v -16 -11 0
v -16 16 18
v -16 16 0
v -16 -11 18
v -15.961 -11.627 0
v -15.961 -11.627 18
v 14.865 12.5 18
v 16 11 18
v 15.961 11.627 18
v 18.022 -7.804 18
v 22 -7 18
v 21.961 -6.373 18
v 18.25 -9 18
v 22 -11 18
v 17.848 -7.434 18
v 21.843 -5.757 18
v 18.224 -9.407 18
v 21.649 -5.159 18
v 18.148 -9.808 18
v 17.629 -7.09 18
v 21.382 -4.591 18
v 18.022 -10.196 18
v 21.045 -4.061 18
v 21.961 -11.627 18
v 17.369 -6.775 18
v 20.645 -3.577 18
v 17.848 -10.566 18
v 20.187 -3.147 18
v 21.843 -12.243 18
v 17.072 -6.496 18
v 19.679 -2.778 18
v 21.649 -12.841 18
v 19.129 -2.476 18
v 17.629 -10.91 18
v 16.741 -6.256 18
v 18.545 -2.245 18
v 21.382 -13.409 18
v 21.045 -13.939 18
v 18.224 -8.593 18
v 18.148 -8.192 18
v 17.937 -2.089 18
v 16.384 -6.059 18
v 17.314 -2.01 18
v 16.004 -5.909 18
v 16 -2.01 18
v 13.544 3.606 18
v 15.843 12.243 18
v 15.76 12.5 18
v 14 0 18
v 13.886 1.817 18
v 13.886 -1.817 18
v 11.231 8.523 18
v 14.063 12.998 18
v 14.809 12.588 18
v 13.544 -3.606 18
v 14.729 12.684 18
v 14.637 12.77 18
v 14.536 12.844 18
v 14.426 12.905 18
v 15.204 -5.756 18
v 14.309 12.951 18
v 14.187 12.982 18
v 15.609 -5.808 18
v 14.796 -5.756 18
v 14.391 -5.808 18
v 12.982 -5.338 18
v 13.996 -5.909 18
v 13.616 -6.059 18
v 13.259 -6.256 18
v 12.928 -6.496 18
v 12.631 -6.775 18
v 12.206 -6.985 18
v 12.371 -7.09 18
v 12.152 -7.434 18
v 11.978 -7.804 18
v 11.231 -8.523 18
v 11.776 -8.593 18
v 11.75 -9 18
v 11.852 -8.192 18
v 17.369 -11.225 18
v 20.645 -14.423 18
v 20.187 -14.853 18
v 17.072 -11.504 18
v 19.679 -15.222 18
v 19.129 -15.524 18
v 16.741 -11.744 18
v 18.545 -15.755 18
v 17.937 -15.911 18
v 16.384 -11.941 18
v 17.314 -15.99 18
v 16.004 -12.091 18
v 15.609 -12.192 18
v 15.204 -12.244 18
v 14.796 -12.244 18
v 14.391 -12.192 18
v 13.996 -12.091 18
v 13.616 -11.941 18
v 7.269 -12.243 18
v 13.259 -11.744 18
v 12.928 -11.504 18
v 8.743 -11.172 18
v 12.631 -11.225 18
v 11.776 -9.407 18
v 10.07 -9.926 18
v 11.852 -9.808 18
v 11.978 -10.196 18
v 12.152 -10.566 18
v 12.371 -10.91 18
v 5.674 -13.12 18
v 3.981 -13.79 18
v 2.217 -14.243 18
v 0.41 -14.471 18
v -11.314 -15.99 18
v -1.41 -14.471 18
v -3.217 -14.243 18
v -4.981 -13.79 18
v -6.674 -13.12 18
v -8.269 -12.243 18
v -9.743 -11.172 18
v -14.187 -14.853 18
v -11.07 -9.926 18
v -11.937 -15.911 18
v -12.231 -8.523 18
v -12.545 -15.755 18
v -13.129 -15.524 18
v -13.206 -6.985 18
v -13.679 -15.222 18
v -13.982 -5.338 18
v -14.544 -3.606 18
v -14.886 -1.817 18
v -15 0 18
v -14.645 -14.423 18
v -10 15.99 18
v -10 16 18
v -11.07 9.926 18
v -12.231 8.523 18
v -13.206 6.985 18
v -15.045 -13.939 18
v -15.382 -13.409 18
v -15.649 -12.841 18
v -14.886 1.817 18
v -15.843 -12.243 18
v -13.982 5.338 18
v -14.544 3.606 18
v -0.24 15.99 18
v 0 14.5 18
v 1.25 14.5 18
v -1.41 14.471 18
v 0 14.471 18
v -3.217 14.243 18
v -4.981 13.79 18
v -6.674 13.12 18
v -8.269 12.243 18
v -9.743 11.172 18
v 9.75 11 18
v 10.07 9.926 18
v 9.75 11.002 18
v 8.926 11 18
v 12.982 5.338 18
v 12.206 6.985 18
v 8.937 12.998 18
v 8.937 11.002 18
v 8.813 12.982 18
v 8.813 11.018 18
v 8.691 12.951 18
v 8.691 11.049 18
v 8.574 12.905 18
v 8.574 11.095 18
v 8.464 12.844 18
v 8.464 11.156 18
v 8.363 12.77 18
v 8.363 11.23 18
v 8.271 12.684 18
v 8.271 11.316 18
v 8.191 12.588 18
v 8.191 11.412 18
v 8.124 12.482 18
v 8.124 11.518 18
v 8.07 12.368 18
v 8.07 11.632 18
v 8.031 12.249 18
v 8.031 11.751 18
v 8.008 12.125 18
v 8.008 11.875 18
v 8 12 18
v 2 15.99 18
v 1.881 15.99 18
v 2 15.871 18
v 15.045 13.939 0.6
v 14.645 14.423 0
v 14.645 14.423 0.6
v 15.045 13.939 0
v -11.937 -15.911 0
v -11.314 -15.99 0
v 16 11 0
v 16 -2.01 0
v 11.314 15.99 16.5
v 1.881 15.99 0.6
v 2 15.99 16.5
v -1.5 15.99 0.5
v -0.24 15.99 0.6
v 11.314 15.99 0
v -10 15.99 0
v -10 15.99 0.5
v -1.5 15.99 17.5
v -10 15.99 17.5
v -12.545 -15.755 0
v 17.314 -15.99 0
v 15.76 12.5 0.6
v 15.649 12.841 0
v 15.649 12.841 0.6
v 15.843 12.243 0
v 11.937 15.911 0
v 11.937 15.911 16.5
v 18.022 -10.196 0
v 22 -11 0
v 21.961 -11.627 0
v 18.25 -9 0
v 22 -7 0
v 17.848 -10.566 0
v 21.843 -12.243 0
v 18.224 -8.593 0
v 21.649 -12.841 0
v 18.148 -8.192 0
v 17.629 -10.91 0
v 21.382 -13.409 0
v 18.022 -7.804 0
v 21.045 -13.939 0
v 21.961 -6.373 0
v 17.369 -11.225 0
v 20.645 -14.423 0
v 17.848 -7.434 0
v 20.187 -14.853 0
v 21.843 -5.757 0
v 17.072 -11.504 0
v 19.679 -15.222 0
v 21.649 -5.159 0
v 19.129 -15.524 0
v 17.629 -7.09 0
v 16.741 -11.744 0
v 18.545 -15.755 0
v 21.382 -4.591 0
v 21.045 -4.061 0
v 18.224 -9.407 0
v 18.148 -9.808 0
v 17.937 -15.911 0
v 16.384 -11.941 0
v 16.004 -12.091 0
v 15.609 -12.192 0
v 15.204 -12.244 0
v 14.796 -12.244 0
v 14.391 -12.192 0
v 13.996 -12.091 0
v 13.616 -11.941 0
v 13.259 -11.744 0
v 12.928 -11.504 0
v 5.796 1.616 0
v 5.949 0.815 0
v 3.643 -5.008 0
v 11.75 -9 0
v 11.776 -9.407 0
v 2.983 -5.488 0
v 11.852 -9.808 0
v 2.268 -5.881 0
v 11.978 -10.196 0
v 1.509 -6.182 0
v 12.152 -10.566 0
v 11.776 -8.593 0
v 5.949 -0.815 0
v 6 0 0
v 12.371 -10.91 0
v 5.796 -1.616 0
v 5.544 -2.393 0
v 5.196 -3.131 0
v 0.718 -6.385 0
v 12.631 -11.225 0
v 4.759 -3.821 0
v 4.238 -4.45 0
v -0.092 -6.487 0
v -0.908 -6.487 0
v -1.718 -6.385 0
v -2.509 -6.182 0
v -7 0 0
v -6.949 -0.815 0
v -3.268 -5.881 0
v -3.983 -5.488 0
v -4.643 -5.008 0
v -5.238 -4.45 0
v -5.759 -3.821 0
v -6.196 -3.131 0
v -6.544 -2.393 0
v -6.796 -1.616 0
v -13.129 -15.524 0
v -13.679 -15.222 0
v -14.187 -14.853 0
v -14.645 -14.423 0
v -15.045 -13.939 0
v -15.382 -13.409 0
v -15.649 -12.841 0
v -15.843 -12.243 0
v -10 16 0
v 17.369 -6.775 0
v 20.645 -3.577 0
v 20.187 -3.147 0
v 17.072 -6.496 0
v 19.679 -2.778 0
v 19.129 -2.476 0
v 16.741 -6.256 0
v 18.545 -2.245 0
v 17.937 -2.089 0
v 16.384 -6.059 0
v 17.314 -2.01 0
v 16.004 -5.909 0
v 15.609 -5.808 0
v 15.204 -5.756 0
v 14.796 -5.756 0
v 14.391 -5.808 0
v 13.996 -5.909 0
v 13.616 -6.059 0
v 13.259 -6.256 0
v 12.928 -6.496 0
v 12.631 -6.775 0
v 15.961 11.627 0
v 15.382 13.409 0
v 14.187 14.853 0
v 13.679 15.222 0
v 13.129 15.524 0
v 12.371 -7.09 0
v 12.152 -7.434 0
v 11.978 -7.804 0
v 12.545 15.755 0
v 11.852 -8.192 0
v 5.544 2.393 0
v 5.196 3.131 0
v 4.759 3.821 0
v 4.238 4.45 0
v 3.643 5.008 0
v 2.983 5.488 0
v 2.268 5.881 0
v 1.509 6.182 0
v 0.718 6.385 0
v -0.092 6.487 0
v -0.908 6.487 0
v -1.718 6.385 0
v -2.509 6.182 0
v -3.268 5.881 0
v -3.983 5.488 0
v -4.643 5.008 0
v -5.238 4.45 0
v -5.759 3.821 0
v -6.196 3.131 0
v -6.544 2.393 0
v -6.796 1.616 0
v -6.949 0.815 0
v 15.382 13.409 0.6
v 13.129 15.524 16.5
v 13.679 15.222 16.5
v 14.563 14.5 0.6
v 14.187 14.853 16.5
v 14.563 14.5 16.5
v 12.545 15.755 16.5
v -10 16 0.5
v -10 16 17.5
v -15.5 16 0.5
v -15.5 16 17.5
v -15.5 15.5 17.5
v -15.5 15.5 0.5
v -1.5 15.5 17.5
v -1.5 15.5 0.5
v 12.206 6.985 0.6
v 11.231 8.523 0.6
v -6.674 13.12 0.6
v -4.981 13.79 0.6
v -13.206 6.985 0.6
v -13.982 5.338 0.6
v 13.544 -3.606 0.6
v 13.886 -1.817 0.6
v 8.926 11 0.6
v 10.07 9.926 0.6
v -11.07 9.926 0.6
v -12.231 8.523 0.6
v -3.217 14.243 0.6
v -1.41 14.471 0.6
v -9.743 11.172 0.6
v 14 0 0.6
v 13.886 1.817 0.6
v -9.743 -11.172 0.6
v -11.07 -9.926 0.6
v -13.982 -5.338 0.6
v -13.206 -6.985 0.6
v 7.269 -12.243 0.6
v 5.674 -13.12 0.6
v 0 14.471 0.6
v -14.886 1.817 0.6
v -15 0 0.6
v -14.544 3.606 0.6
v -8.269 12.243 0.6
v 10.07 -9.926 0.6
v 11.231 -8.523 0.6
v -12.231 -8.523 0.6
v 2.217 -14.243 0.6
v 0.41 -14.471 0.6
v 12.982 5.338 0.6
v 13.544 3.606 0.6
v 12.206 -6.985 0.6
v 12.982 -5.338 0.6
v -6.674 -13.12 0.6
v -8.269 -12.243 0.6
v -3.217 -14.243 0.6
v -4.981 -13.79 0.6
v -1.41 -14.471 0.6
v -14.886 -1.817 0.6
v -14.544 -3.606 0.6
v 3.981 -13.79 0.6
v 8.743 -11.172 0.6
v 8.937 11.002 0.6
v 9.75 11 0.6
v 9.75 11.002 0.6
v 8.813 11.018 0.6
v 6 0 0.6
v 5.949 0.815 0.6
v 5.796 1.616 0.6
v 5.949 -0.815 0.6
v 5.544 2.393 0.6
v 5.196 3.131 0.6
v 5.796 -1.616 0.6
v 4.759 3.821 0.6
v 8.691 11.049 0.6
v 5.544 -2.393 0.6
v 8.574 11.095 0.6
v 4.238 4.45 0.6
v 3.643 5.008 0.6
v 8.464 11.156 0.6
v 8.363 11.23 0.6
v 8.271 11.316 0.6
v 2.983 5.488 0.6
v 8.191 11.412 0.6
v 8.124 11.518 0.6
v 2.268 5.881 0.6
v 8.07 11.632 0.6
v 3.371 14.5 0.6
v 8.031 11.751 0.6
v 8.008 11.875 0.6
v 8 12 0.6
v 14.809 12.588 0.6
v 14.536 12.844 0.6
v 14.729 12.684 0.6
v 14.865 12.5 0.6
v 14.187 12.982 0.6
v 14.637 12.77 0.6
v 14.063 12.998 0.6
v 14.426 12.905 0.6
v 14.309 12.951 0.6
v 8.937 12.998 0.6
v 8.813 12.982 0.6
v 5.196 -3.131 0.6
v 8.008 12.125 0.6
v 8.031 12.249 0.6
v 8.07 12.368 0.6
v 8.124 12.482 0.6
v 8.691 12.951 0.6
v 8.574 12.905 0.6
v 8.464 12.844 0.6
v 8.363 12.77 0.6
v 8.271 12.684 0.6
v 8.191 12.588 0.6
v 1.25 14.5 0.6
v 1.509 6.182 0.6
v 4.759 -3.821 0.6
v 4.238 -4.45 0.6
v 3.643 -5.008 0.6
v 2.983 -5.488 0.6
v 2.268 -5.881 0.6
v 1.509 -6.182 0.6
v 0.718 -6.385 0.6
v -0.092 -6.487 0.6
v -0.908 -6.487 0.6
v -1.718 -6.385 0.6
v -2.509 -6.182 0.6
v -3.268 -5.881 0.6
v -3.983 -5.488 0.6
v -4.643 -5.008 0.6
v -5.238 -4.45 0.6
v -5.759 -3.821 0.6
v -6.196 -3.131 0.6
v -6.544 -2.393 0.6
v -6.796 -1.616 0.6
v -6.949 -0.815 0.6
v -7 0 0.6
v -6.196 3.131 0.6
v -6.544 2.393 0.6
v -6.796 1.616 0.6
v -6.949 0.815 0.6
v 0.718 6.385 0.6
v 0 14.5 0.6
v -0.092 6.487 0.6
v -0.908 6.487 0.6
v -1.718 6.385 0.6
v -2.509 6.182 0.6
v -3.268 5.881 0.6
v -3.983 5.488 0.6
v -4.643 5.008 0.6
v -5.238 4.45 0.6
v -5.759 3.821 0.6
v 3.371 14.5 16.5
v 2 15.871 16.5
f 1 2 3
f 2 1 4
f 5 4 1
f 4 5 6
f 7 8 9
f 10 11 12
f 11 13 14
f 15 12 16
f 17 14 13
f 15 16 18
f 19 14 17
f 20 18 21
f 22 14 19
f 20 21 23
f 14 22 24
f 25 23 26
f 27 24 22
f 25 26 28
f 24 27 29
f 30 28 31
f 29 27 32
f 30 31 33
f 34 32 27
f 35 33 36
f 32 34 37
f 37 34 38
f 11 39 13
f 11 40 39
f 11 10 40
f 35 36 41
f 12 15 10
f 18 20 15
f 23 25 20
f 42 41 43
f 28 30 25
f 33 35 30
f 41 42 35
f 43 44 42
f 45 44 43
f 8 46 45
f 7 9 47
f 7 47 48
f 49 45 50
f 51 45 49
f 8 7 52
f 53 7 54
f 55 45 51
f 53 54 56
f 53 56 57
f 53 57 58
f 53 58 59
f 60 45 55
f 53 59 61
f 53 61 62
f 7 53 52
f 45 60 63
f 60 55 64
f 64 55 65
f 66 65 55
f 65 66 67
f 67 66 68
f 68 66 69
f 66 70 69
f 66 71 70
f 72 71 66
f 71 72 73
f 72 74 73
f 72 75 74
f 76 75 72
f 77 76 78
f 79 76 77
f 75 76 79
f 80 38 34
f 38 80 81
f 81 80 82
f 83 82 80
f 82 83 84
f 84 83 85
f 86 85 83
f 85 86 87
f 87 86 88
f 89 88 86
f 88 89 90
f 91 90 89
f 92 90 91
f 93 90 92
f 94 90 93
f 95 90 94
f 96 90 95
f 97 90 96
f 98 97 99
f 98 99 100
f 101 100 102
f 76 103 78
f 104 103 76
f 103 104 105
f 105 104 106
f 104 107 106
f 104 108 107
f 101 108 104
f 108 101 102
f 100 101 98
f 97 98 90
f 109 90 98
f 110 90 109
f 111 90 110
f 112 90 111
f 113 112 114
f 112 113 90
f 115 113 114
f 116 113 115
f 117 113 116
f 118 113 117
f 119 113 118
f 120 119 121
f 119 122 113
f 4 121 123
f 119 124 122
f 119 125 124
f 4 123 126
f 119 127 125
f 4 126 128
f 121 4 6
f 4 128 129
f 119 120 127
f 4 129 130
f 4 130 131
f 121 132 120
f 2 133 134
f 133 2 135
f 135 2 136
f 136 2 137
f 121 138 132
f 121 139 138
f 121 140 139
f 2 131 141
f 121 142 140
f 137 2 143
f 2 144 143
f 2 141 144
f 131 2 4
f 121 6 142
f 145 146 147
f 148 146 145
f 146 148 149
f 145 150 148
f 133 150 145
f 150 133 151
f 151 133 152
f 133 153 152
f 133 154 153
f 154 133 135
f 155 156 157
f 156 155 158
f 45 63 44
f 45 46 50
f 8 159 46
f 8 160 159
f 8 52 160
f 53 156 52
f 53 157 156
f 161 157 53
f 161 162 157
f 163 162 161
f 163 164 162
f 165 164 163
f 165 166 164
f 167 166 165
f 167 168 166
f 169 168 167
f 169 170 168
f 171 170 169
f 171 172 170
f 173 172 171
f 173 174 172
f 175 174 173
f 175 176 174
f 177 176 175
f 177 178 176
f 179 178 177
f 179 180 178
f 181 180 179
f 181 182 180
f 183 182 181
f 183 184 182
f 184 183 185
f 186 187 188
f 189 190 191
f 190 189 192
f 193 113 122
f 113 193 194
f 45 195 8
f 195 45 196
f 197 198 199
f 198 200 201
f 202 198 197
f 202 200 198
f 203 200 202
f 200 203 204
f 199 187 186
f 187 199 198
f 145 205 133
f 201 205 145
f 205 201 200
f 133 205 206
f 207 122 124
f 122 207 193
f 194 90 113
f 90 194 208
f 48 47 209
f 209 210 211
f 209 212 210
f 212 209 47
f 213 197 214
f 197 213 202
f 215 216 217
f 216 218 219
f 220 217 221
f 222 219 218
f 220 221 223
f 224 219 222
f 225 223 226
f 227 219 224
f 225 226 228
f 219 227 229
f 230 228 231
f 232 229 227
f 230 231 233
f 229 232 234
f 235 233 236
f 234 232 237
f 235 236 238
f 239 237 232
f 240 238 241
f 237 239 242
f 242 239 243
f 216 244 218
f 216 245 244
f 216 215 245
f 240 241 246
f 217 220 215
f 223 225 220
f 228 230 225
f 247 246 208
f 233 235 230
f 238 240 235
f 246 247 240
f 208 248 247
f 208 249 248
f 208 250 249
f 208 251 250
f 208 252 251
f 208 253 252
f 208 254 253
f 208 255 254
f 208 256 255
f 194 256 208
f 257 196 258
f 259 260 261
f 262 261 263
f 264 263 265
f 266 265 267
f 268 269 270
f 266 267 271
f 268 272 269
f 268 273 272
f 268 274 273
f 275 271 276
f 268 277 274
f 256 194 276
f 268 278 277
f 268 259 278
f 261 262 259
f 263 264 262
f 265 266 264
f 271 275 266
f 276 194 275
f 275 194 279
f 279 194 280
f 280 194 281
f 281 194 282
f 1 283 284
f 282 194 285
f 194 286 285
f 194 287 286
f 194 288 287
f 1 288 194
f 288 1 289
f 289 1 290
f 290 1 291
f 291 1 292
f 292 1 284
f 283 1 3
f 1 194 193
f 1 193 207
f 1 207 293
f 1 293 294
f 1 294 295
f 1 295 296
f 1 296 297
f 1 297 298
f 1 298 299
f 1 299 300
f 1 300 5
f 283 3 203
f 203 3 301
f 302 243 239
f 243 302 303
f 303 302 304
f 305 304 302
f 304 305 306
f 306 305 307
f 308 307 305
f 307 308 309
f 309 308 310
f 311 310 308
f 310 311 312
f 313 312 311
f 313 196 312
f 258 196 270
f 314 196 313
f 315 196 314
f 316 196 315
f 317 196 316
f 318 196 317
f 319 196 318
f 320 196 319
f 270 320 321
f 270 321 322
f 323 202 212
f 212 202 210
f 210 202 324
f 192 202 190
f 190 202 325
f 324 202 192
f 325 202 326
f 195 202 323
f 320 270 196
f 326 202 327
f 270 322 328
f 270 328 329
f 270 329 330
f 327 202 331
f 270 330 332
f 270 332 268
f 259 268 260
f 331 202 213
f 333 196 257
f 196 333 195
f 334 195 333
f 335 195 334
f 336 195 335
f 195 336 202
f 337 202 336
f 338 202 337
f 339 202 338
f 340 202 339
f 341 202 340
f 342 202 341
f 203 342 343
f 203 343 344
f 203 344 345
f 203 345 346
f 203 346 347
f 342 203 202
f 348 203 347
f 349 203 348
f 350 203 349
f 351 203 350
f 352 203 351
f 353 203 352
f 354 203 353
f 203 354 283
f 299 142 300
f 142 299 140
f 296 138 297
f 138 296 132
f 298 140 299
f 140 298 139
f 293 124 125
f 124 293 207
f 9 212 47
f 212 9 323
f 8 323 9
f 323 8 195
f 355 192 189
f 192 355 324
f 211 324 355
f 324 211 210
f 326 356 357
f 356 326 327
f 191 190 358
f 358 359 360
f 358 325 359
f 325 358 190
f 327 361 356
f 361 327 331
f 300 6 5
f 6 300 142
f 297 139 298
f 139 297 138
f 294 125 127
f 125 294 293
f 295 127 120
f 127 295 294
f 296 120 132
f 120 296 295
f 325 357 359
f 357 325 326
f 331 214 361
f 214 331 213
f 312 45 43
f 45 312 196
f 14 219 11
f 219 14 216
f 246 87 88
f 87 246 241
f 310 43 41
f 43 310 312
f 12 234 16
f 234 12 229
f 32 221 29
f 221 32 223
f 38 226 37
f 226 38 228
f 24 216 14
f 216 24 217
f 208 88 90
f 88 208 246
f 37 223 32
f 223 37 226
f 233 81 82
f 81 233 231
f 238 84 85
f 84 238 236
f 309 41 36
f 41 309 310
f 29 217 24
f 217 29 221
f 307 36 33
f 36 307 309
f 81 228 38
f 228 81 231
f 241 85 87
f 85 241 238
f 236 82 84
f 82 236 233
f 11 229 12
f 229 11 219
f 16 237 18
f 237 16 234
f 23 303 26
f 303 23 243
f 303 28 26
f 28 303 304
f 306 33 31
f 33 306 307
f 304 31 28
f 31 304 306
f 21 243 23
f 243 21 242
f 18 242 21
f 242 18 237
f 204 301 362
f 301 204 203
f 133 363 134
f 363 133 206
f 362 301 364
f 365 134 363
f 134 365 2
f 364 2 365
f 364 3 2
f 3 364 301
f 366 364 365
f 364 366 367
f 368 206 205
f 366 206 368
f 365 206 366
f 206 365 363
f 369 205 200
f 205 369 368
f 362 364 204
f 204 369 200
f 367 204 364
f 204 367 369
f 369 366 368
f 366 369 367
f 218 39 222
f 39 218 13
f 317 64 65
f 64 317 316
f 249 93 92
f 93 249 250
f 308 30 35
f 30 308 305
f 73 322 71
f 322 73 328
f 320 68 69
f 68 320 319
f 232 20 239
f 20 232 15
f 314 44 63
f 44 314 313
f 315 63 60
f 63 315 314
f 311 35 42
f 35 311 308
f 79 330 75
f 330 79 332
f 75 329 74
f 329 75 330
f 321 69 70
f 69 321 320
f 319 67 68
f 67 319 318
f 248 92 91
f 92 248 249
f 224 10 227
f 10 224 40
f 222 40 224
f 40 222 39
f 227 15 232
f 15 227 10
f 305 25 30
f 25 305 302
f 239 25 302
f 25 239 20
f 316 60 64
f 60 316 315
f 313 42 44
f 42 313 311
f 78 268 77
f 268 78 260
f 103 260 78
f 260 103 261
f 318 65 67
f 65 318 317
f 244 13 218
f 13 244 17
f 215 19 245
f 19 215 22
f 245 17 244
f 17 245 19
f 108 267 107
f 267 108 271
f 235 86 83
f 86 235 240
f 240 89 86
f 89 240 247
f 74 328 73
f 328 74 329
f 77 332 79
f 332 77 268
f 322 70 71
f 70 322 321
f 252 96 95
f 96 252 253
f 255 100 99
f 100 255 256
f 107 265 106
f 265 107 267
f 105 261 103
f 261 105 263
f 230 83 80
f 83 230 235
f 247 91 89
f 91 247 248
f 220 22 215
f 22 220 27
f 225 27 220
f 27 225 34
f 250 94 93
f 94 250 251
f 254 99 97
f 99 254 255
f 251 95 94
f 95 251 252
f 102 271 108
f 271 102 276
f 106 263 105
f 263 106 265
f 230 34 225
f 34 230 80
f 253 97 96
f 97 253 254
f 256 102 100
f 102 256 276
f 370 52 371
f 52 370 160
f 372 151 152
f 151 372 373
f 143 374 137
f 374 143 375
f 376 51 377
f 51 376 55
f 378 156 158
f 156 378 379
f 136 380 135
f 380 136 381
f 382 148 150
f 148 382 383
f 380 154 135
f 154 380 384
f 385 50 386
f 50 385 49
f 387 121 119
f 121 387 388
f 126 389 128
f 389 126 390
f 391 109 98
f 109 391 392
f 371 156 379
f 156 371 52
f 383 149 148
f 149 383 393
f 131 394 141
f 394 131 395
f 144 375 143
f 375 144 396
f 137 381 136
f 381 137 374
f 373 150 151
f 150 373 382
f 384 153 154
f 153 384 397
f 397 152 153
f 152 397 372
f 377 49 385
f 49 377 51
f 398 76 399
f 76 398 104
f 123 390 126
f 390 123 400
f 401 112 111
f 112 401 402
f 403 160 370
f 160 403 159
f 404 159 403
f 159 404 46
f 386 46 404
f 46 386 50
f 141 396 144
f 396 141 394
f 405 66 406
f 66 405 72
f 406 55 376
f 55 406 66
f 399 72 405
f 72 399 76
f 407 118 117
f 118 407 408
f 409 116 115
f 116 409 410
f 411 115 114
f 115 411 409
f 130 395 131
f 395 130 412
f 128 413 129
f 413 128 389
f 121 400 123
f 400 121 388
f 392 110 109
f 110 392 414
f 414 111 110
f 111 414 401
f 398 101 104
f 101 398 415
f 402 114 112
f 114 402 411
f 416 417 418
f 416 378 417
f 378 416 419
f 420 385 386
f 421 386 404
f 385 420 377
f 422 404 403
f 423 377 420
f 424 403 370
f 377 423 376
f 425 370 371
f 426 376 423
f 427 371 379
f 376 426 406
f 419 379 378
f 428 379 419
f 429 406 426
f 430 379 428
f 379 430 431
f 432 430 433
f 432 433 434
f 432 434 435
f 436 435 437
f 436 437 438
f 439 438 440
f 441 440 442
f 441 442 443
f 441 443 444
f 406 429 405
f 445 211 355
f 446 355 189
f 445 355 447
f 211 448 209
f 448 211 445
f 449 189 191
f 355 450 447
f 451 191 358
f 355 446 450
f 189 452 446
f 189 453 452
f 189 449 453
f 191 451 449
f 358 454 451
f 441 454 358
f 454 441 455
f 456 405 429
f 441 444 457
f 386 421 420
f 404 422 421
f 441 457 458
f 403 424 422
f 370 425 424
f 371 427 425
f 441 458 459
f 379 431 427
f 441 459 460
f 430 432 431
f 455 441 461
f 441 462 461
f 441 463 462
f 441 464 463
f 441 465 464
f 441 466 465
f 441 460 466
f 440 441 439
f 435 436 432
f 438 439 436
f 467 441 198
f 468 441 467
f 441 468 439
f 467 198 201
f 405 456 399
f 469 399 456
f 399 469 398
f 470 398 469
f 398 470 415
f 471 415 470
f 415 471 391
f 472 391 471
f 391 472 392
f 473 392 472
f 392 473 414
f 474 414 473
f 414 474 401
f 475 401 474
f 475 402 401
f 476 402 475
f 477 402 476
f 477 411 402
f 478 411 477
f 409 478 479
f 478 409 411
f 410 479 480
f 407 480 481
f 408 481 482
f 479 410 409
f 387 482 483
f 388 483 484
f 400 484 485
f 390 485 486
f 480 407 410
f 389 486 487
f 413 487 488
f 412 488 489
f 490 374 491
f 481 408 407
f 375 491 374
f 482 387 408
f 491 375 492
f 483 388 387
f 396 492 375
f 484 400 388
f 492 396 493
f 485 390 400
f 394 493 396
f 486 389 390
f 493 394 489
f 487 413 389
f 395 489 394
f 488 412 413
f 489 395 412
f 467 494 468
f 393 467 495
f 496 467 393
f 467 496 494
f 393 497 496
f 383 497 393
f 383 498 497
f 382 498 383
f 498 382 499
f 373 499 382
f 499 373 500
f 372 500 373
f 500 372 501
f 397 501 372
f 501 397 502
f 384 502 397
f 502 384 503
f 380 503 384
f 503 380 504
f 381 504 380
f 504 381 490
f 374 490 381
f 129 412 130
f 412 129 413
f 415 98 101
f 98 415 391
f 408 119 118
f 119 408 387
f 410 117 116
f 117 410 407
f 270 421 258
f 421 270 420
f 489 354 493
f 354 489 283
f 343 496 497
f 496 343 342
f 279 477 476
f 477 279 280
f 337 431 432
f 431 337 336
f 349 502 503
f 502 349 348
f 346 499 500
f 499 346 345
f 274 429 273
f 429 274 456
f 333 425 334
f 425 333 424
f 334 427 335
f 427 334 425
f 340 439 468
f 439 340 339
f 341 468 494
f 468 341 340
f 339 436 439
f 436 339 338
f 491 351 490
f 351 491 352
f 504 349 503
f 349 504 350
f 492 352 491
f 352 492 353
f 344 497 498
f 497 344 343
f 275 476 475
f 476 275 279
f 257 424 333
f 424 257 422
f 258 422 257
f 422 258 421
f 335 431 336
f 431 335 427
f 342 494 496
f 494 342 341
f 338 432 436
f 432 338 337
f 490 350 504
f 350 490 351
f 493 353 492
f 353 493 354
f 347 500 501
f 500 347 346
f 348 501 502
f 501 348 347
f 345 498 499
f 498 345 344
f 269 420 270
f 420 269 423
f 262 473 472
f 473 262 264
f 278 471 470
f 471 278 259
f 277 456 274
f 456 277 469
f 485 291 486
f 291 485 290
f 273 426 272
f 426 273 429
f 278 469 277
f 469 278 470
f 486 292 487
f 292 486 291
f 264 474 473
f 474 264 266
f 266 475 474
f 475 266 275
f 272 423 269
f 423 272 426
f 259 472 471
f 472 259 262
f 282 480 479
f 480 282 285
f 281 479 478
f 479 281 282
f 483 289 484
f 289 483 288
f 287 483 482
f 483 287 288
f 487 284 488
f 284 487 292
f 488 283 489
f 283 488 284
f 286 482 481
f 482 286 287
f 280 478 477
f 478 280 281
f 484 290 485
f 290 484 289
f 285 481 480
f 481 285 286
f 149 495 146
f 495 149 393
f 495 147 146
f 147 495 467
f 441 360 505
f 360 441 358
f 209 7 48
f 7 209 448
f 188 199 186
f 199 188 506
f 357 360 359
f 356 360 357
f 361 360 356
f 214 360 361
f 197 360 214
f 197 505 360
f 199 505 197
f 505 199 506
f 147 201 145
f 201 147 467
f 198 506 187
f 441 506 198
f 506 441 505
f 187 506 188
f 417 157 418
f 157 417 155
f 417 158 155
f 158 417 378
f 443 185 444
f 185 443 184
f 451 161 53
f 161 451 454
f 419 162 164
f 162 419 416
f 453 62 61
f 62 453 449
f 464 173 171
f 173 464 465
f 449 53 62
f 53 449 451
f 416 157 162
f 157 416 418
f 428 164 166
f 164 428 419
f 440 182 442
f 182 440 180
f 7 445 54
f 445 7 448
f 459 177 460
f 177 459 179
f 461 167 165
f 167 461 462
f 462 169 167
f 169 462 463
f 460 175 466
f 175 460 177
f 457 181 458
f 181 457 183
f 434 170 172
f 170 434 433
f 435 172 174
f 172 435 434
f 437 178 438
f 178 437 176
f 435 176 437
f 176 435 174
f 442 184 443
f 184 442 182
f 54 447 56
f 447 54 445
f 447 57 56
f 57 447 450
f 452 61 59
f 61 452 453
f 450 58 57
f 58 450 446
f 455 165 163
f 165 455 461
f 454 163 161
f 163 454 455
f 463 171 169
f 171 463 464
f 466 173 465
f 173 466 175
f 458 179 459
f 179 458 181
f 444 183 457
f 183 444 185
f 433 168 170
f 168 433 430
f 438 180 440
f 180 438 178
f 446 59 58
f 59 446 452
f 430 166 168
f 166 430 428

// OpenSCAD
$fn = 50;


union() {
	difference() {
		union() {
			translate(v = [0, 0, 0]) {
				rotate(a = [0, 0, 0]) {
					hull() {
						translate(v = [-11.0000000000, 11.0000000000, 0]) {
							rotate(a = [0, 0, 0]) {
								translate(v = [0, 0, 0]) {
									rotate(a = [0, 0, 0]) {
										cylinder(h = 18, r = 5);
									}
								}
							}
						}
						translate(v = [11.0000000000, 11.0000000000, 0]) {
							rotate(a = [0, 0, 0]) {
								translate(v = [0, 0, 0]) {
									rotate(a = [0, 0, 0]) {
										cylinder(h = 18, r = 5);
									}
								}
							}
						}
						translate(v = [-11.0000000000, -11.0000000000, 0]) {
							rotate(a = [0, 0, 0]) {
								translate(v = [0, 0, 0]) {
									rotate(a = [0, 0, 0]) {
										cylinder(h = 18, r = 5);
									}
								}
							}
						}
						translate(v = [11.0000000000, -11.0000000000, 0]) {
							rotate(a = [0, 0, 0]) {
								translate(v = [0, 0, 0]) {
									rotate(a = [0, 0, 0]) {
										cylinder(h = 18, r = 5);
									}
								}
							}
						}
					}
				}
			}
			translate(v = [7.5000000000, -9.0000000000, 0]) {
				rotate(a = [0, 0, 0]) {
					hull() {
						translate(v = [-9.5000000000, 2.0000000000, 0]) {
							rotate(a = [0, 0, 0]) {
								translate(v = [0, 0, 0]) {
									rotate(a = [0, 0, 0]) {
										cylinder(h = 18, r = 5);
									}
								}
							}
						}
						translate(v = [9.5000000000, 2.0000000000, 0]) {
							rotate(a = [0, 0, 0]) {
								translate(v = [0, 0, 0]) {
									rotate(a = [0, 0, 0]) {
										cylinder(h = 18, r = 5);
									}
								}
							}
						}
						translate(v = [-9.5000000000, -2.0000000000, 0]) {
							rotate(a = [0, 0, 0]) {
								translate(v = [0, 0, 0]) {
									rotate(a = [0, 0, 0]) {
										cylinder(h = 18, r = 5);
									}
								}
							}
						}
						translate(v = [9.5000000000, -2.0000000000, 0]) {
							rotate(a = [0, 0, 0]) {
								translate(v = [0, 0, 0]) {
									rotate(a = [0, 0, 0]) {
										cylinder(h = 18, r = 5);
									}
								}
							}
						}
					}
				}
			}
			translate(v = [-16.0000000000, 10.0000000000, 0]) {
				rotate(a = [0, 0, 0]) {
					cube(size = [6, 6, 18]);
				}
			}
		}
		union() {
			translate(v = [-15.5000000000, 15.5000000000, 0.5000000000]) {
				rotate(a = [0, 0, 0]) {
					cube(size = [14, 0.5000000000, 17.0000000000]);
				}
			}
			translate(v = [15.0000000000, -9.0000000000, -125.0000000000]) {
				rotate(a = [0, 0, 0]) {
					cylinder(h = 250, r = 3.2500000000);
				}
			}
			translate(v = [-0.5000000000, 0.0000000000, 0.6000000000]) {
				rotate(a = [0, 0, 0]) {
					cylinder(h = 20.4000000000, r = 14.5000000000);
				}
			}
			translate(v = [-0.5000000000, 0.0000000000, -9.0000000000]) {
				rotate(a = [0, 0, 0]) {
					cylinder(h = 18, r = 6.5000000000);
				}
			}
			translate(v = [0.0000000000, 12.5000000000, 0.6000000000]) {
				rotate(a = [0, 0, 0]) {
					cube(size = [16.0000000000, 2, 20.4000000000]);
				}
			}
			translate(v = [2.0000000000, 12.5000000000, 16.5000000000]) {
				rotate(a = [0, 0, 0]) {
					cube(size = [14.0000000000, 5, 1.5000000000]);
				}
			}
			translate(v = [-3.0000000000, 18.7500000000, 0.6000000000]) {
				rotate(a = [0, 0, -45]) {
					cube(size = [10, 1.5000000000, 20.4000000000]);
				}
			}
			translate(v = [2.2500000000, 11.0000000000, 0.6000000000]) {
				rotate(a = [0, 0, 0]) {
					cube(size = [7.5000000000, 2, 17.4000000000]);
				}
			}
		}
	}
	union() {
		translate(v = [11.5000000000, 12, 0]) {
			rotate(a = [0, 0, 0]) {
				hull() {
					translate(v = [2.5000000000, 0, 0]) {
						rotate(a = [0, 0, 0]) {
							translate(v = [0, 0, 0]) {
								rotate(a = [0, 0, 0]) {
									cylinder(h = 18, r = 1.0000000000);
								}
							}
						}
					}
					translate(v = [-2.5000000000, 0, 0]) {
						rotate(a = [0, 0, 0]) {
							translate(v = [0, 0, 0]) {
								rotate(a = [0, 0, 0]) {
									cylinder(h = 18, r = 1.0000000000);
								}
							}
						}
					}
				}
			}
		}
	}
}
